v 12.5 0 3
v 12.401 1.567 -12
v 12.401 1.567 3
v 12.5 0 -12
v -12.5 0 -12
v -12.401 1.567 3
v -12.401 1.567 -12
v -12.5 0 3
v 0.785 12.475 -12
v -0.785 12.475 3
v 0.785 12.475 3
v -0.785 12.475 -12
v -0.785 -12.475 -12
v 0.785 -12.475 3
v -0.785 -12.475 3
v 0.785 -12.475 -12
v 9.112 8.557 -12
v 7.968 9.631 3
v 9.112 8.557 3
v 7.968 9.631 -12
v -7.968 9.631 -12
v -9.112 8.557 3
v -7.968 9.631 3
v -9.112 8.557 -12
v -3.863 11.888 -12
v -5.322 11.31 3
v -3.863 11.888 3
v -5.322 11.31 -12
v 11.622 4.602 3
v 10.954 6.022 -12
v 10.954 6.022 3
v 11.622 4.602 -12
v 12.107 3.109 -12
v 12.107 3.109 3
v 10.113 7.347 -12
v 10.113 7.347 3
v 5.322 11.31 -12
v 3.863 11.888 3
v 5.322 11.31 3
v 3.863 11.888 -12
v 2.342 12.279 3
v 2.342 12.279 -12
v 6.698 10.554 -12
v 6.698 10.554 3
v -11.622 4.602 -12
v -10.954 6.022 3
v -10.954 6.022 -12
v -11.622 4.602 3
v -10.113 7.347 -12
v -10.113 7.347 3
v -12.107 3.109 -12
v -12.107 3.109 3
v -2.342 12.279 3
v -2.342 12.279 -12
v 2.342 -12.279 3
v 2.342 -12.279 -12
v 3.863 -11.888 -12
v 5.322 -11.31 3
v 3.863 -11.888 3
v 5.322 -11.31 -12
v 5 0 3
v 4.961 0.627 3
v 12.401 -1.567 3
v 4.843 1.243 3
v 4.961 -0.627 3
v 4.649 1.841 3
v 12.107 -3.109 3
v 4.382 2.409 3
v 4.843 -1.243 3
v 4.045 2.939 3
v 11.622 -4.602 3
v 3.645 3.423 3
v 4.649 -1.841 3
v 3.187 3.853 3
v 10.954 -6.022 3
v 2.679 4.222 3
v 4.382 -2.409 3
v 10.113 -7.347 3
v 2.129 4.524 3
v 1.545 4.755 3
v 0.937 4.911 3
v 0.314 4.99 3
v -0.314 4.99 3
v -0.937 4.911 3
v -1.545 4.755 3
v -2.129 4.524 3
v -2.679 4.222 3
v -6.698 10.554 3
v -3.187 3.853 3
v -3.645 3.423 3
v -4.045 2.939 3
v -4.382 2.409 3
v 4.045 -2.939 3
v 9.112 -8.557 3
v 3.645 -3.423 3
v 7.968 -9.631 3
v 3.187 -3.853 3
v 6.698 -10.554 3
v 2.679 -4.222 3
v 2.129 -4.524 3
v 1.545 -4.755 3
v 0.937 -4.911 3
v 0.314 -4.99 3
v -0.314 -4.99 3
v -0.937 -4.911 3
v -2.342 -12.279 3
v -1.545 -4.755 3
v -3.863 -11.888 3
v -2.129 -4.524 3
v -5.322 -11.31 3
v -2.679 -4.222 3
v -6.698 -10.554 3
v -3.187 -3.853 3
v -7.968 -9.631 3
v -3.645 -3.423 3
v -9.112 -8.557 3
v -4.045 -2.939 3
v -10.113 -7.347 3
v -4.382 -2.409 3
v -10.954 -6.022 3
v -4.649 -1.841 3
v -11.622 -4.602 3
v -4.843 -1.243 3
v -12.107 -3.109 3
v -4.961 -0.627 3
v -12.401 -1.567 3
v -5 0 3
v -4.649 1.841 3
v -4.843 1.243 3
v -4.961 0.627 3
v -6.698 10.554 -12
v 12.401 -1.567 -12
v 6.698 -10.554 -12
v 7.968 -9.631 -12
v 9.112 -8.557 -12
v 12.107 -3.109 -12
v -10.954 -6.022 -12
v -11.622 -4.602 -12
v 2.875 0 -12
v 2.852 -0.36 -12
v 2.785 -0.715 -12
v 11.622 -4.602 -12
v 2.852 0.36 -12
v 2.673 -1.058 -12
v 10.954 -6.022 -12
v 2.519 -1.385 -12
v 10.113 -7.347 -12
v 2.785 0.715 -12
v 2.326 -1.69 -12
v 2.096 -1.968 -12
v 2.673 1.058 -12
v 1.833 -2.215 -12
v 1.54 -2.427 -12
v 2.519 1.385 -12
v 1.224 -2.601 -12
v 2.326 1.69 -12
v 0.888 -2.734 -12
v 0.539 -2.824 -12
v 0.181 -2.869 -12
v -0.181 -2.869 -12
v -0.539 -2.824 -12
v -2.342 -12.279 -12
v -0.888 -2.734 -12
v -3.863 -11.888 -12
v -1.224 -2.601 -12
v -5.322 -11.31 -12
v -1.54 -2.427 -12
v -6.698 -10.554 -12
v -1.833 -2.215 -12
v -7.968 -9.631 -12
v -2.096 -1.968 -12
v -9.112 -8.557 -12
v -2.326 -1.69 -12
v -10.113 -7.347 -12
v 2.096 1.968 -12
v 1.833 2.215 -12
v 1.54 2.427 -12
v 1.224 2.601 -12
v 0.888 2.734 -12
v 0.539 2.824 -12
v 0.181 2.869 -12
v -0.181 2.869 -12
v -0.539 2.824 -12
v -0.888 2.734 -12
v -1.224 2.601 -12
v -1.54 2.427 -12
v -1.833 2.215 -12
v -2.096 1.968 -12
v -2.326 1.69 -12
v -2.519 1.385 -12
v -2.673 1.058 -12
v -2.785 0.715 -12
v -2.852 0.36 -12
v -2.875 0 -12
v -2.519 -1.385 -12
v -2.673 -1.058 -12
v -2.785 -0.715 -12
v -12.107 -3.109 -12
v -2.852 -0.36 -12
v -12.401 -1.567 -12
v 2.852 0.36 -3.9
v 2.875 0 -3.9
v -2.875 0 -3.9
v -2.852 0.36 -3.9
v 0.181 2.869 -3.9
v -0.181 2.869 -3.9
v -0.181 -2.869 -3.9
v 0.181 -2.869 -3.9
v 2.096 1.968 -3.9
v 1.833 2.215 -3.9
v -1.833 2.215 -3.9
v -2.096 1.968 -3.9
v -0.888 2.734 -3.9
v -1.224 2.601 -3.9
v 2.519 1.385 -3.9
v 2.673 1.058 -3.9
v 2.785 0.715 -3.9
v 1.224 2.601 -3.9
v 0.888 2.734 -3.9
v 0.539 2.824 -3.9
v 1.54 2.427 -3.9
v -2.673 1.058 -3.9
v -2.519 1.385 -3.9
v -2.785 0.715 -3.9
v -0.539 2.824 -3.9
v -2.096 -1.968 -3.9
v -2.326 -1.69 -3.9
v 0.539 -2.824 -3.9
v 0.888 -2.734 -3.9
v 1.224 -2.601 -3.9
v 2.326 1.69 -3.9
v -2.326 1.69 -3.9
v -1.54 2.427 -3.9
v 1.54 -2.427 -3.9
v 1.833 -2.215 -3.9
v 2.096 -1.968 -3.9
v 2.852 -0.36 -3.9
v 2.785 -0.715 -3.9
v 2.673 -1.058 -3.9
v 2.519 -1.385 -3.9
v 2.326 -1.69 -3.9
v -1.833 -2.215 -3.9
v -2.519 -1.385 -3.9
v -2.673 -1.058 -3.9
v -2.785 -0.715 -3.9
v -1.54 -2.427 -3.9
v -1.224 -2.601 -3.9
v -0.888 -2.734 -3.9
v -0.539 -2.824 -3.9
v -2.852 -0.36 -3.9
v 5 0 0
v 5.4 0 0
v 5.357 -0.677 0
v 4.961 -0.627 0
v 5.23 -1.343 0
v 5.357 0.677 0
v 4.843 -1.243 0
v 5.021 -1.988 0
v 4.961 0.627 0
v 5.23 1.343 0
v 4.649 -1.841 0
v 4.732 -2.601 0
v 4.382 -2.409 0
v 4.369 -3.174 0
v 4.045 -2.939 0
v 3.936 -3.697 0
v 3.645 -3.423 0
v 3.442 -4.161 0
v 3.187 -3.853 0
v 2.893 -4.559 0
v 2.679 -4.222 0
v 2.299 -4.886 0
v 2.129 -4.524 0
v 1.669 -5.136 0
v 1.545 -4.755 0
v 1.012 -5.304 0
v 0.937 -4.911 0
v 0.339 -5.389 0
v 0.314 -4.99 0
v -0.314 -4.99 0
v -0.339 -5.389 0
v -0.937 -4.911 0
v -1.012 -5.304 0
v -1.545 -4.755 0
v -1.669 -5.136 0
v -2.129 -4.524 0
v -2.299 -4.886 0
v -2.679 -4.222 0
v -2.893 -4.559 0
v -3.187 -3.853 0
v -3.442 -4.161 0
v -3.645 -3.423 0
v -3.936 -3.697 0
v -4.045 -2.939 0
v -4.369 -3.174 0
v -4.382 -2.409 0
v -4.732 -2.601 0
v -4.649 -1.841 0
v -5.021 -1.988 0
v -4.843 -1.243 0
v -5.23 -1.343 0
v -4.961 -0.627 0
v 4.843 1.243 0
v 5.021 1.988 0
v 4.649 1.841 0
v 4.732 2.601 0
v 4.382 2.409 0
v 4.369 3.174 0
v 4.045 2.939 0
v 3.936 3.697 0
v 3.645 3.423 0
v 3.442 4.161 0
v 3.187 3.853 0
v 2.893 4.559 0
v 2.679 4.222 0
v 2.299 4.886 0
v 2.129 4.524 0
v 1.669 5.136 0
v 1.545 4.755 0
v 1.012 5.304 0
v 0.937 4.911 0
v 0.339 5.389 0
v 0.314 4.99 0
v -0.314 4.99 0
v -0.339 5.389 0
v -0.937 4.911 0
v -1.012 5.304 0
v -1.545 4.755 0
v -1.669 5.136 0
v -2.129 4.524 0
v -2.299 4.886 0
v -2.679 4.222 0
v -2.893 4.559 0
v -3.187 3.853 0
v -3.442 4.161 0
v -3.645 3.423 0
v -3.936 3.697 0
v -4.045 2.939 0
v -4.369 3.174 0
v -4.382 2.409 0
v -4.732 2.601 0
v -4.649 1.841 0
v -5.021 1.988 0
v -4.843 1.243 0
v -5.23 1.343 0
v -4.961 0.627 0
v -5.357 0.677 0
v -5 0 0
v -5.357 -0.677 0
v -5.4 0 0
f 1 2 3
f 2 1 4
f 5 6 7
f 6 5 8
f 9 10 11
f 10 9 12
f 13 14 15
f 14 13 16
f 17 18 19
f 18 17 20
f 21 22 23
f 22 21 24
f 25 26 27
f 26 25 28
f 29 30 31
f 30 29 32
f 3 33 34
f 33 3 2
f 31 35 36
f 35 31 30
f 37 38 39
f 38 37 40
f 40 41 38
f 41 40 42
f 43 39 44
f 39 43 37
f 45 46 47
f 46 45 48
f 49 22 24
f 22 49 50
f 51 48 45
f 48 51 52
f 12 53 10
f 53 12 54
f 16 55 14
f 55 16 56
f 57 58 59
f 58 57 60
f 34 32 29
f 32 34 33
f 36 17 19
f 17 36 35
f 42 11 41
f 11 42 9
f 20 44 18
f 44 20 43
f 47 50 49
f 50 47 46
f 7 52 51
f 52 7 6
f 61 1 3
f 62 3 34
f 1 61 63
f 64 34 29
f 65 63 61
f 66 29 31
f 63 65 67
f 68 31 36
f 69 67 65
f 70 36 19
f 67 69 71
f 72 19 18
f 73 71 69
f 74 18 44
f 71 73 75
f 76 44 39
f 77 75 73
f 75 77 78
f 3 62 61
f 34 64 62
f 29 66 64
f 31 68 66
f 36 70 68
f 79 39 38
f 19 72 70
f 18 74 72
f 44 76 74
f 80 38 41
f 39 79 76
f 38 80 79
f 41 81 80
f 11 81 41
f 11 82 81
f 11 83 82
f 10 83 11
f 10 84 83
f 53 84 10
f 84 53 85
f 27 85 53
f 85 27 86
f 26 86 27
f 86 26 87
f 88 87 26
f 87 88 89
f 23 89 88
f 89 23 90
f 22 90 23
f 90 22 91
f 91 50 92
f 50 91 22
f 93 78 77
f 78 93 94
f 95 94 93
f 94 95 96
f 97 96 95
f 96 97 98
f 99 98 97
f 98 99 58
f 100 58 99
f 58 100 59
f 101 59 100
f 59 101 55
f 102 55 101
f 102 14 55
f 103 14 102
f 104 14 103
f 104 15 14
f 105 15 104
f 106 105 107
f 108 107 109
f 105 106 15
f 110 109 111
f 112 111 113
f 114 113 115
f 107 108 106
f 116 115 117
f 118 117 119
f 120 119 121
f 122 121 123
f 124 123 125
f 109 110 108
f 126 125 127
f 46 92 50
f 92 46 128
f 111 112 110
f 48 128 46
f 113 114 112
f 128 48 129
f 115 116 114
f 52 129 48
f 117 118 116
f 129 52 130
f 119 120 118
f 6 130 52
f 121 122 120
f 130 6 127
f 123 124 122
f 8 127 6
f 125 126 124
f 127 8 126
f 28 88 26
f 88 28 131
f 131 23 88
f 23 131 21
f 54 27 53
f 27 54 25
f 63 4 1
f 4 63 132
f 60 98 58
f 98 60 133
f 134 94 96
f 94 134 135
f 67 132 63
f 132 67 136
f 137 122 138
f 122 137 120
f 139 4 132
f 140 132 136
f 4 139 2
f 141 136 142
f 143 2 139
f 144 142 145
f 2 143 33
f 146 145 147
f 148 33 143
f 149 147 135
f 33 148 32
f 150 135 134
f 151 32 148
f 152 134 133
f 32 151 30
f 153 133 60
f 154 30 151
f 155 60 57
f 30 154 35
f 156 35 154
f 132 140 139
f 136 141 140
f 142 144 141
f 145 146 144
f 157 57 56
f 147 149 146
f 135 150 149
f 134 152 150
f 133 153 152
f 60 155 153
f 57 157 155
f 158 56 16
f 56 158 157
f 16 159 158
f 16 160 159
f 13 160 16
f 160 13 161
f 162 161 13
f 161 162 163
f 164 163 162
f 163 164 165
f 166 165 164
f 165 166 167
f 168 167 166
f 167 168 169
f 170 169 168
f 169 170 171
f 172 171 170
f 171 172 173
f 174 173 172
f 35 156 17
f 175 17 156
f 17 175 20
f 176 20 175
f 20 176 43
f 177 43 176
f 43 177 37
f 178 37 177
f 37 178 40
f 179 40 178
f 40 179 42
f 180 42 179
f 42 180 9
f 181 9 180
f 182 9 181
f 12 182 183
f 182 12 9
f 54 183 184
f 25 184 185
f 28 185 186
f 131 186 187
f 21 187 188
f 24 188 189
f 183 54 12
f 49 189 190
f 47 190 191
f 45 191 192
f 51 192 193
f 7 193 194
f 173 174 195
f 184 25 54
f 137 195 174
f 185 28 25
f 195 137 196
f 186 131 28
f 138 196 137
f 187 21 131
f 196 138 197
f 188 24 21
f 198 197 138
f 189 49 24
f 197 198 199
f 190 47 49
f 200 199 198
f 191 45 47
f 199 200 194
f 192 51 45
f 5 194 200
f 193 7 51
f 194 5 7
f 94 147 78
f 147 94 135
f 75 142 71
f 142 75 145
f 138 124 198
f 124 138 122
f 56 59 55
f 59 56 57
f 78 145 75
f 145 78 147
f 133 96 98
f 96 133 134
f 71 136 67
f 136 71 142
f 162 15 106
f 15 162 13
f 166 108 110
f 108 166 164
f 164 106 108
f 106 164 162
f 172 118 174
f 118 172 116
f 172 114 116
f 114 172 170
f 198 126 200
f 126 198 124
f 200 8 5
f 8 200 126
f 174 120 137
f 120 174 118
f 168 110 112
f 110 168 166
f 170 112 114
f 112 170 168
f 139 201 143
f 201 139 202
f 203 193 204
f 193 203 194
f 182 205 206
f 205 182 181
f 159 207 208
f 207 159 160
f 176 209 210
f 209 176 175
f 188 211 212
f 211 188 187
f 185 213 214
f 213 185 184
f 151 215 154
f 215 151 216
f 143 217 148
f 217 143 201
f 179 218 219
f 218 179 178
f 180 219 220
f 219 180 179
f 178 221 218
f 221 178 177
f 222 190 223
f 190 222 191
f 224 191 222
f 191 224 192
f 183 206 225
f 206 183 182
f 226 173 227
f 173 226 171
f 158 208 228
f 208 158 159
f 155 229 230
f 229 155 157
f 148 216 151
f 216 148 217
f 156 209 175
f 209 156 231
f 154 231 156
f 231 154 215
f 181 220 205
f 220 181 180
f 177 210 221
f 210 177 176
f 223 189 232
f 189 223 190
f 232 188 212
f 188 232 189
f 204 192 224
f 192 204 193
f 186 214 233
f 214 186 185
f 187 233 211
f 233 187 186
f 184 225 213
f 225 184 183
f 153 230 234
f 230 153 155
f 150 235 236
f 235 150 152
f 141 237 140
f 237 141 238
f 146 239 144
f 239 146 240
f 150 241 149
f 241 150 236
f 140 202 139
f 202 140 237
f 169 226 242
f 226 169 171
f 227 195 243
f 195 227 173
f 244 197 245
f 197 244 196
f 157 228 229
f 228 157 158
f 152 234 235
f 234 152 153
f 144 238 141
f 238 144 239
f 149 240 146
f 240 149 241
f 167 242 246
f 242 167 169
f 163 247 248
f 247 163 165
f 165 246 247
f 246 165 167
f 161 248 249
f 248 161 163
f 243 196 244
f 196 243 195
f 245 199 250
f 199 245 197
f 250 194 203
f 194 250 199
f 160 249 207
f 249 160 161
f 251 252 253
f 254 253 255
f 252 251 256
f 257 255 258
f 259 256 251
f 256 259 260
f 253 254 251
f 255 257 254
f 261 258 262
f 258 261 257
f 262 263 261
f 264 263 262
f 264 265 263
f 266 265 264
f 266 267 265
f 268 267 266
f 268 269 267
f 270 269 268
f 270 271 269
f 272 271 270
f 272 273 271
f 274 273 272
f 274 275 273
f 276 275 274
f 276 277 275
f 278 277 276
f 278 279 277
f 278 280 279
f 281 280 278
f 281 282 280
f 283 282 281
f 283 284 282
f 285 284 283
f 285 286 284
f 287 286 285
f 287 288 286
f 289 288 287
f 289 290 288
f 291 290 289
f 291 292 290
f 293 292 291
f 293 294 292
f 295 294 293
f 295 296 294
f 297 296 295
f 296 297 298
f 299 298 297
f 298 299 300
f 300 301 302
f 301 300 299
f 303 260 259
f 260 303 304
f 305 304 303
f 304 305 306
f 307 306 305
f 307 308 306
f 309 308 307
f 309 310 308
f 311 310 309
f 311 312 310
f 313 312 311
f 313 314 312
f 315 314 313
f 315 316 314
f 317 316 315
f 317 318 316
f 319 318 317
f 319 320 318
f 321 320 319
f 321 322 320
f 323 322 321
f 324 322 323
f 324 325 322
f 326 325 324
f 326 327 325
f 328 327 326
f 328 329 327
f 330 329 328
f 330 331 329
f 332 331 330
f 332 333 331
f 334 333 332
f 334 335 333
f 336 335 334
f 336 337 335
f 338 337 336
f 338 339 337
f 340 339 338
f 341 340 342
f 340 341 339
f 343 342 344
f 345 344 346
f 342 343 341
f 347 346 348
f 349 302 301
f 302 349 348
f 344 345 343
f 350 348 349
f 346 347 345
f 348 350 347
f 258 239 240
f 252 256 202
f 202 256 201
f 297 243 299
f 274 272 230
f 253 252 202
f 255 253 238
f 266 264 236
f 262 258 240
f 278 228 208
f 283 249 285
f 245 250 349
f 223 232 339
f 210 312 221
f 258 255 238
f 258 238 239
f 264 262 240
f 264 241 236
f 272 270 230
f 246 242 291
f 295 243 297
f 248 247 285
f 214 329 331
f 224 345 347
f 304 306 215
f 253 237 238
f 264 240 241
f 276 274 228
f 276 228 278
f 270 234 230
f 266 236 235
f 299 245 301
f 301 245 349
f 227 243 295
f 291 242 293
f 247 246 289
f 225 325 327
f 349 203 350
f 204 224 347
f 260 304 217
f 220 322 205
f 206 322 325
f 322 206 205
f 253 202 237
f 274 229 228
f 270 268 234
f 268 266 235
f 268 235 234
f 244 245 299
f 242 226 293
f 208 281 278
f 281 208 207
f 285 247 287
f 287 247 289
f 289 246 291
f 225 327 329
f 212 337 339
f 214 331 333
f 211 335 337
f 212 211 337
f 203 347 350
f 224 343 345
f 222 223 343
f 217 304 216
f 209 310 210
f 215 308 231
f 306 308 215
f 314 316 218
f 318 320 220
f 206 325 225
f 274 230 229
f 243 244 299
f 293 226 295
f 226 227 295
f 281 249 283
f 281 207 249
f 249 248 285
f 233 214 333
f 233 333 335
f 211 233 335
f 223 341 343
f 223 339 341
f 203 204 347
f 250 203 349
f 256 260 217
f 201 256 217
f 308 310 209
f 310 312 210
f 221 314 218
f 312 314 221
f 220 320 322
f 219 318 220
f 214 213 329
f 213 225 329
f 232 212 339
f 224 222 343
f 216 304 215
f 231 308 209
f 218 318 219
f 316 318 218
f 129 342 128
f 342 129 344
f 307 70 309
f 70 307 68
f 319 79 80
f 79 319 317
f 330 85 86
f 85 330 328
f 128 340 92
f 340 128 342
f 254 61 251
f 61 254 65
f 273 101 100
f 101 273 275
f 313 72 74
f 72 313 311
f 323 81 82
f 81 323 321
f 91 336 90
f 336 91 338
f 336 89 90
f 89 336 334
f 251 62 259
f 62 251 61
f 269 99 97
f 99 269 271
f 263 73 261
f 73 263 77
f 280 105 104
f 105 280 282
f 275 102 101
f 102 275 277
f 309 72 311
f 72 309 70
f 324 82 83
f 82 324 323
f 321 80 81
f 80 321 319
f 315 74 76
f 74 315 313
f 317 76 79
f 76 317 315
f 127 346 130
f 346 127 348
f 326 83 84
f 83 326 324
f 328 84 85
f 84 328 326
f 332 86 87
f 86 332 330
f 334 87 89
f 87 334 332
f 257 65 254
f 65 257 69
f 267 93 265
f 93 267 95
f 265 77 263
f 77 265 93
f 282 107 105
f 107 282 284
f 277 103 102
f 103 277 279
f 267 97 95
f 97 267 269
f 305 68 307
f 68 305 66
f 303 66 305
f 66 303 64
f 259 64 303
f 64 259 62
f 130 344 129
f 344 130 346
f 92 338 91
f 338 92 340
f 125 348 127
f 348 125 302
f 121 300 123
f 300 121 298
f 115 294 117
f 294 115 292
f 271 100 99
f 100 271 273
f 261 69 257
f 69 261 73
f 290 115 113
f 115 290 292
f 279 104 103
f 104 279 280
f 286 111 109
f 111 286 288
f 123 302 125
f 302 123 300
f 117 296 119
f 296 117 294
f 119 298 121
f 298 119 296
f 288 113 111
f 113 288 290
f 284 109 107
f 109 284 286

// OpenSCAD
$fn = 50;

difference() {
	union() {
		translate(v = [0, 0, -12.0]) {
			cylinder(h = 15, r = 12.5);
		}
		#translate(v = [0, 0, -15.0]) {
			cylinder(h = 15, r = 2.875);
		}
	}
	union() {
		translate(v = [0, 0, 0]) {
			rotate(a = [0, 0, 0]) {
				difference() {
					union() {
						translate(v = [0, 0, -15.0]) {
							cylinder(h = 15, r = 2.6);
						}
						translate(v = [0, 0, -3.9]) {
							cylinder(h = 3.9, r1 = 2.875, r2 = 5.4);
						}
						translate(v = [0, 0, -15.0]) {
							cylinder(h = 15, r = 2.875);
						}
						translate(v = [0, 0, -15.0]) {
							cylinder(h = 15, r = 2.6);
						}
					}
					union();
				}
			}
		}
		#cylinder(h = 3, r = 5.0);
	}
}
